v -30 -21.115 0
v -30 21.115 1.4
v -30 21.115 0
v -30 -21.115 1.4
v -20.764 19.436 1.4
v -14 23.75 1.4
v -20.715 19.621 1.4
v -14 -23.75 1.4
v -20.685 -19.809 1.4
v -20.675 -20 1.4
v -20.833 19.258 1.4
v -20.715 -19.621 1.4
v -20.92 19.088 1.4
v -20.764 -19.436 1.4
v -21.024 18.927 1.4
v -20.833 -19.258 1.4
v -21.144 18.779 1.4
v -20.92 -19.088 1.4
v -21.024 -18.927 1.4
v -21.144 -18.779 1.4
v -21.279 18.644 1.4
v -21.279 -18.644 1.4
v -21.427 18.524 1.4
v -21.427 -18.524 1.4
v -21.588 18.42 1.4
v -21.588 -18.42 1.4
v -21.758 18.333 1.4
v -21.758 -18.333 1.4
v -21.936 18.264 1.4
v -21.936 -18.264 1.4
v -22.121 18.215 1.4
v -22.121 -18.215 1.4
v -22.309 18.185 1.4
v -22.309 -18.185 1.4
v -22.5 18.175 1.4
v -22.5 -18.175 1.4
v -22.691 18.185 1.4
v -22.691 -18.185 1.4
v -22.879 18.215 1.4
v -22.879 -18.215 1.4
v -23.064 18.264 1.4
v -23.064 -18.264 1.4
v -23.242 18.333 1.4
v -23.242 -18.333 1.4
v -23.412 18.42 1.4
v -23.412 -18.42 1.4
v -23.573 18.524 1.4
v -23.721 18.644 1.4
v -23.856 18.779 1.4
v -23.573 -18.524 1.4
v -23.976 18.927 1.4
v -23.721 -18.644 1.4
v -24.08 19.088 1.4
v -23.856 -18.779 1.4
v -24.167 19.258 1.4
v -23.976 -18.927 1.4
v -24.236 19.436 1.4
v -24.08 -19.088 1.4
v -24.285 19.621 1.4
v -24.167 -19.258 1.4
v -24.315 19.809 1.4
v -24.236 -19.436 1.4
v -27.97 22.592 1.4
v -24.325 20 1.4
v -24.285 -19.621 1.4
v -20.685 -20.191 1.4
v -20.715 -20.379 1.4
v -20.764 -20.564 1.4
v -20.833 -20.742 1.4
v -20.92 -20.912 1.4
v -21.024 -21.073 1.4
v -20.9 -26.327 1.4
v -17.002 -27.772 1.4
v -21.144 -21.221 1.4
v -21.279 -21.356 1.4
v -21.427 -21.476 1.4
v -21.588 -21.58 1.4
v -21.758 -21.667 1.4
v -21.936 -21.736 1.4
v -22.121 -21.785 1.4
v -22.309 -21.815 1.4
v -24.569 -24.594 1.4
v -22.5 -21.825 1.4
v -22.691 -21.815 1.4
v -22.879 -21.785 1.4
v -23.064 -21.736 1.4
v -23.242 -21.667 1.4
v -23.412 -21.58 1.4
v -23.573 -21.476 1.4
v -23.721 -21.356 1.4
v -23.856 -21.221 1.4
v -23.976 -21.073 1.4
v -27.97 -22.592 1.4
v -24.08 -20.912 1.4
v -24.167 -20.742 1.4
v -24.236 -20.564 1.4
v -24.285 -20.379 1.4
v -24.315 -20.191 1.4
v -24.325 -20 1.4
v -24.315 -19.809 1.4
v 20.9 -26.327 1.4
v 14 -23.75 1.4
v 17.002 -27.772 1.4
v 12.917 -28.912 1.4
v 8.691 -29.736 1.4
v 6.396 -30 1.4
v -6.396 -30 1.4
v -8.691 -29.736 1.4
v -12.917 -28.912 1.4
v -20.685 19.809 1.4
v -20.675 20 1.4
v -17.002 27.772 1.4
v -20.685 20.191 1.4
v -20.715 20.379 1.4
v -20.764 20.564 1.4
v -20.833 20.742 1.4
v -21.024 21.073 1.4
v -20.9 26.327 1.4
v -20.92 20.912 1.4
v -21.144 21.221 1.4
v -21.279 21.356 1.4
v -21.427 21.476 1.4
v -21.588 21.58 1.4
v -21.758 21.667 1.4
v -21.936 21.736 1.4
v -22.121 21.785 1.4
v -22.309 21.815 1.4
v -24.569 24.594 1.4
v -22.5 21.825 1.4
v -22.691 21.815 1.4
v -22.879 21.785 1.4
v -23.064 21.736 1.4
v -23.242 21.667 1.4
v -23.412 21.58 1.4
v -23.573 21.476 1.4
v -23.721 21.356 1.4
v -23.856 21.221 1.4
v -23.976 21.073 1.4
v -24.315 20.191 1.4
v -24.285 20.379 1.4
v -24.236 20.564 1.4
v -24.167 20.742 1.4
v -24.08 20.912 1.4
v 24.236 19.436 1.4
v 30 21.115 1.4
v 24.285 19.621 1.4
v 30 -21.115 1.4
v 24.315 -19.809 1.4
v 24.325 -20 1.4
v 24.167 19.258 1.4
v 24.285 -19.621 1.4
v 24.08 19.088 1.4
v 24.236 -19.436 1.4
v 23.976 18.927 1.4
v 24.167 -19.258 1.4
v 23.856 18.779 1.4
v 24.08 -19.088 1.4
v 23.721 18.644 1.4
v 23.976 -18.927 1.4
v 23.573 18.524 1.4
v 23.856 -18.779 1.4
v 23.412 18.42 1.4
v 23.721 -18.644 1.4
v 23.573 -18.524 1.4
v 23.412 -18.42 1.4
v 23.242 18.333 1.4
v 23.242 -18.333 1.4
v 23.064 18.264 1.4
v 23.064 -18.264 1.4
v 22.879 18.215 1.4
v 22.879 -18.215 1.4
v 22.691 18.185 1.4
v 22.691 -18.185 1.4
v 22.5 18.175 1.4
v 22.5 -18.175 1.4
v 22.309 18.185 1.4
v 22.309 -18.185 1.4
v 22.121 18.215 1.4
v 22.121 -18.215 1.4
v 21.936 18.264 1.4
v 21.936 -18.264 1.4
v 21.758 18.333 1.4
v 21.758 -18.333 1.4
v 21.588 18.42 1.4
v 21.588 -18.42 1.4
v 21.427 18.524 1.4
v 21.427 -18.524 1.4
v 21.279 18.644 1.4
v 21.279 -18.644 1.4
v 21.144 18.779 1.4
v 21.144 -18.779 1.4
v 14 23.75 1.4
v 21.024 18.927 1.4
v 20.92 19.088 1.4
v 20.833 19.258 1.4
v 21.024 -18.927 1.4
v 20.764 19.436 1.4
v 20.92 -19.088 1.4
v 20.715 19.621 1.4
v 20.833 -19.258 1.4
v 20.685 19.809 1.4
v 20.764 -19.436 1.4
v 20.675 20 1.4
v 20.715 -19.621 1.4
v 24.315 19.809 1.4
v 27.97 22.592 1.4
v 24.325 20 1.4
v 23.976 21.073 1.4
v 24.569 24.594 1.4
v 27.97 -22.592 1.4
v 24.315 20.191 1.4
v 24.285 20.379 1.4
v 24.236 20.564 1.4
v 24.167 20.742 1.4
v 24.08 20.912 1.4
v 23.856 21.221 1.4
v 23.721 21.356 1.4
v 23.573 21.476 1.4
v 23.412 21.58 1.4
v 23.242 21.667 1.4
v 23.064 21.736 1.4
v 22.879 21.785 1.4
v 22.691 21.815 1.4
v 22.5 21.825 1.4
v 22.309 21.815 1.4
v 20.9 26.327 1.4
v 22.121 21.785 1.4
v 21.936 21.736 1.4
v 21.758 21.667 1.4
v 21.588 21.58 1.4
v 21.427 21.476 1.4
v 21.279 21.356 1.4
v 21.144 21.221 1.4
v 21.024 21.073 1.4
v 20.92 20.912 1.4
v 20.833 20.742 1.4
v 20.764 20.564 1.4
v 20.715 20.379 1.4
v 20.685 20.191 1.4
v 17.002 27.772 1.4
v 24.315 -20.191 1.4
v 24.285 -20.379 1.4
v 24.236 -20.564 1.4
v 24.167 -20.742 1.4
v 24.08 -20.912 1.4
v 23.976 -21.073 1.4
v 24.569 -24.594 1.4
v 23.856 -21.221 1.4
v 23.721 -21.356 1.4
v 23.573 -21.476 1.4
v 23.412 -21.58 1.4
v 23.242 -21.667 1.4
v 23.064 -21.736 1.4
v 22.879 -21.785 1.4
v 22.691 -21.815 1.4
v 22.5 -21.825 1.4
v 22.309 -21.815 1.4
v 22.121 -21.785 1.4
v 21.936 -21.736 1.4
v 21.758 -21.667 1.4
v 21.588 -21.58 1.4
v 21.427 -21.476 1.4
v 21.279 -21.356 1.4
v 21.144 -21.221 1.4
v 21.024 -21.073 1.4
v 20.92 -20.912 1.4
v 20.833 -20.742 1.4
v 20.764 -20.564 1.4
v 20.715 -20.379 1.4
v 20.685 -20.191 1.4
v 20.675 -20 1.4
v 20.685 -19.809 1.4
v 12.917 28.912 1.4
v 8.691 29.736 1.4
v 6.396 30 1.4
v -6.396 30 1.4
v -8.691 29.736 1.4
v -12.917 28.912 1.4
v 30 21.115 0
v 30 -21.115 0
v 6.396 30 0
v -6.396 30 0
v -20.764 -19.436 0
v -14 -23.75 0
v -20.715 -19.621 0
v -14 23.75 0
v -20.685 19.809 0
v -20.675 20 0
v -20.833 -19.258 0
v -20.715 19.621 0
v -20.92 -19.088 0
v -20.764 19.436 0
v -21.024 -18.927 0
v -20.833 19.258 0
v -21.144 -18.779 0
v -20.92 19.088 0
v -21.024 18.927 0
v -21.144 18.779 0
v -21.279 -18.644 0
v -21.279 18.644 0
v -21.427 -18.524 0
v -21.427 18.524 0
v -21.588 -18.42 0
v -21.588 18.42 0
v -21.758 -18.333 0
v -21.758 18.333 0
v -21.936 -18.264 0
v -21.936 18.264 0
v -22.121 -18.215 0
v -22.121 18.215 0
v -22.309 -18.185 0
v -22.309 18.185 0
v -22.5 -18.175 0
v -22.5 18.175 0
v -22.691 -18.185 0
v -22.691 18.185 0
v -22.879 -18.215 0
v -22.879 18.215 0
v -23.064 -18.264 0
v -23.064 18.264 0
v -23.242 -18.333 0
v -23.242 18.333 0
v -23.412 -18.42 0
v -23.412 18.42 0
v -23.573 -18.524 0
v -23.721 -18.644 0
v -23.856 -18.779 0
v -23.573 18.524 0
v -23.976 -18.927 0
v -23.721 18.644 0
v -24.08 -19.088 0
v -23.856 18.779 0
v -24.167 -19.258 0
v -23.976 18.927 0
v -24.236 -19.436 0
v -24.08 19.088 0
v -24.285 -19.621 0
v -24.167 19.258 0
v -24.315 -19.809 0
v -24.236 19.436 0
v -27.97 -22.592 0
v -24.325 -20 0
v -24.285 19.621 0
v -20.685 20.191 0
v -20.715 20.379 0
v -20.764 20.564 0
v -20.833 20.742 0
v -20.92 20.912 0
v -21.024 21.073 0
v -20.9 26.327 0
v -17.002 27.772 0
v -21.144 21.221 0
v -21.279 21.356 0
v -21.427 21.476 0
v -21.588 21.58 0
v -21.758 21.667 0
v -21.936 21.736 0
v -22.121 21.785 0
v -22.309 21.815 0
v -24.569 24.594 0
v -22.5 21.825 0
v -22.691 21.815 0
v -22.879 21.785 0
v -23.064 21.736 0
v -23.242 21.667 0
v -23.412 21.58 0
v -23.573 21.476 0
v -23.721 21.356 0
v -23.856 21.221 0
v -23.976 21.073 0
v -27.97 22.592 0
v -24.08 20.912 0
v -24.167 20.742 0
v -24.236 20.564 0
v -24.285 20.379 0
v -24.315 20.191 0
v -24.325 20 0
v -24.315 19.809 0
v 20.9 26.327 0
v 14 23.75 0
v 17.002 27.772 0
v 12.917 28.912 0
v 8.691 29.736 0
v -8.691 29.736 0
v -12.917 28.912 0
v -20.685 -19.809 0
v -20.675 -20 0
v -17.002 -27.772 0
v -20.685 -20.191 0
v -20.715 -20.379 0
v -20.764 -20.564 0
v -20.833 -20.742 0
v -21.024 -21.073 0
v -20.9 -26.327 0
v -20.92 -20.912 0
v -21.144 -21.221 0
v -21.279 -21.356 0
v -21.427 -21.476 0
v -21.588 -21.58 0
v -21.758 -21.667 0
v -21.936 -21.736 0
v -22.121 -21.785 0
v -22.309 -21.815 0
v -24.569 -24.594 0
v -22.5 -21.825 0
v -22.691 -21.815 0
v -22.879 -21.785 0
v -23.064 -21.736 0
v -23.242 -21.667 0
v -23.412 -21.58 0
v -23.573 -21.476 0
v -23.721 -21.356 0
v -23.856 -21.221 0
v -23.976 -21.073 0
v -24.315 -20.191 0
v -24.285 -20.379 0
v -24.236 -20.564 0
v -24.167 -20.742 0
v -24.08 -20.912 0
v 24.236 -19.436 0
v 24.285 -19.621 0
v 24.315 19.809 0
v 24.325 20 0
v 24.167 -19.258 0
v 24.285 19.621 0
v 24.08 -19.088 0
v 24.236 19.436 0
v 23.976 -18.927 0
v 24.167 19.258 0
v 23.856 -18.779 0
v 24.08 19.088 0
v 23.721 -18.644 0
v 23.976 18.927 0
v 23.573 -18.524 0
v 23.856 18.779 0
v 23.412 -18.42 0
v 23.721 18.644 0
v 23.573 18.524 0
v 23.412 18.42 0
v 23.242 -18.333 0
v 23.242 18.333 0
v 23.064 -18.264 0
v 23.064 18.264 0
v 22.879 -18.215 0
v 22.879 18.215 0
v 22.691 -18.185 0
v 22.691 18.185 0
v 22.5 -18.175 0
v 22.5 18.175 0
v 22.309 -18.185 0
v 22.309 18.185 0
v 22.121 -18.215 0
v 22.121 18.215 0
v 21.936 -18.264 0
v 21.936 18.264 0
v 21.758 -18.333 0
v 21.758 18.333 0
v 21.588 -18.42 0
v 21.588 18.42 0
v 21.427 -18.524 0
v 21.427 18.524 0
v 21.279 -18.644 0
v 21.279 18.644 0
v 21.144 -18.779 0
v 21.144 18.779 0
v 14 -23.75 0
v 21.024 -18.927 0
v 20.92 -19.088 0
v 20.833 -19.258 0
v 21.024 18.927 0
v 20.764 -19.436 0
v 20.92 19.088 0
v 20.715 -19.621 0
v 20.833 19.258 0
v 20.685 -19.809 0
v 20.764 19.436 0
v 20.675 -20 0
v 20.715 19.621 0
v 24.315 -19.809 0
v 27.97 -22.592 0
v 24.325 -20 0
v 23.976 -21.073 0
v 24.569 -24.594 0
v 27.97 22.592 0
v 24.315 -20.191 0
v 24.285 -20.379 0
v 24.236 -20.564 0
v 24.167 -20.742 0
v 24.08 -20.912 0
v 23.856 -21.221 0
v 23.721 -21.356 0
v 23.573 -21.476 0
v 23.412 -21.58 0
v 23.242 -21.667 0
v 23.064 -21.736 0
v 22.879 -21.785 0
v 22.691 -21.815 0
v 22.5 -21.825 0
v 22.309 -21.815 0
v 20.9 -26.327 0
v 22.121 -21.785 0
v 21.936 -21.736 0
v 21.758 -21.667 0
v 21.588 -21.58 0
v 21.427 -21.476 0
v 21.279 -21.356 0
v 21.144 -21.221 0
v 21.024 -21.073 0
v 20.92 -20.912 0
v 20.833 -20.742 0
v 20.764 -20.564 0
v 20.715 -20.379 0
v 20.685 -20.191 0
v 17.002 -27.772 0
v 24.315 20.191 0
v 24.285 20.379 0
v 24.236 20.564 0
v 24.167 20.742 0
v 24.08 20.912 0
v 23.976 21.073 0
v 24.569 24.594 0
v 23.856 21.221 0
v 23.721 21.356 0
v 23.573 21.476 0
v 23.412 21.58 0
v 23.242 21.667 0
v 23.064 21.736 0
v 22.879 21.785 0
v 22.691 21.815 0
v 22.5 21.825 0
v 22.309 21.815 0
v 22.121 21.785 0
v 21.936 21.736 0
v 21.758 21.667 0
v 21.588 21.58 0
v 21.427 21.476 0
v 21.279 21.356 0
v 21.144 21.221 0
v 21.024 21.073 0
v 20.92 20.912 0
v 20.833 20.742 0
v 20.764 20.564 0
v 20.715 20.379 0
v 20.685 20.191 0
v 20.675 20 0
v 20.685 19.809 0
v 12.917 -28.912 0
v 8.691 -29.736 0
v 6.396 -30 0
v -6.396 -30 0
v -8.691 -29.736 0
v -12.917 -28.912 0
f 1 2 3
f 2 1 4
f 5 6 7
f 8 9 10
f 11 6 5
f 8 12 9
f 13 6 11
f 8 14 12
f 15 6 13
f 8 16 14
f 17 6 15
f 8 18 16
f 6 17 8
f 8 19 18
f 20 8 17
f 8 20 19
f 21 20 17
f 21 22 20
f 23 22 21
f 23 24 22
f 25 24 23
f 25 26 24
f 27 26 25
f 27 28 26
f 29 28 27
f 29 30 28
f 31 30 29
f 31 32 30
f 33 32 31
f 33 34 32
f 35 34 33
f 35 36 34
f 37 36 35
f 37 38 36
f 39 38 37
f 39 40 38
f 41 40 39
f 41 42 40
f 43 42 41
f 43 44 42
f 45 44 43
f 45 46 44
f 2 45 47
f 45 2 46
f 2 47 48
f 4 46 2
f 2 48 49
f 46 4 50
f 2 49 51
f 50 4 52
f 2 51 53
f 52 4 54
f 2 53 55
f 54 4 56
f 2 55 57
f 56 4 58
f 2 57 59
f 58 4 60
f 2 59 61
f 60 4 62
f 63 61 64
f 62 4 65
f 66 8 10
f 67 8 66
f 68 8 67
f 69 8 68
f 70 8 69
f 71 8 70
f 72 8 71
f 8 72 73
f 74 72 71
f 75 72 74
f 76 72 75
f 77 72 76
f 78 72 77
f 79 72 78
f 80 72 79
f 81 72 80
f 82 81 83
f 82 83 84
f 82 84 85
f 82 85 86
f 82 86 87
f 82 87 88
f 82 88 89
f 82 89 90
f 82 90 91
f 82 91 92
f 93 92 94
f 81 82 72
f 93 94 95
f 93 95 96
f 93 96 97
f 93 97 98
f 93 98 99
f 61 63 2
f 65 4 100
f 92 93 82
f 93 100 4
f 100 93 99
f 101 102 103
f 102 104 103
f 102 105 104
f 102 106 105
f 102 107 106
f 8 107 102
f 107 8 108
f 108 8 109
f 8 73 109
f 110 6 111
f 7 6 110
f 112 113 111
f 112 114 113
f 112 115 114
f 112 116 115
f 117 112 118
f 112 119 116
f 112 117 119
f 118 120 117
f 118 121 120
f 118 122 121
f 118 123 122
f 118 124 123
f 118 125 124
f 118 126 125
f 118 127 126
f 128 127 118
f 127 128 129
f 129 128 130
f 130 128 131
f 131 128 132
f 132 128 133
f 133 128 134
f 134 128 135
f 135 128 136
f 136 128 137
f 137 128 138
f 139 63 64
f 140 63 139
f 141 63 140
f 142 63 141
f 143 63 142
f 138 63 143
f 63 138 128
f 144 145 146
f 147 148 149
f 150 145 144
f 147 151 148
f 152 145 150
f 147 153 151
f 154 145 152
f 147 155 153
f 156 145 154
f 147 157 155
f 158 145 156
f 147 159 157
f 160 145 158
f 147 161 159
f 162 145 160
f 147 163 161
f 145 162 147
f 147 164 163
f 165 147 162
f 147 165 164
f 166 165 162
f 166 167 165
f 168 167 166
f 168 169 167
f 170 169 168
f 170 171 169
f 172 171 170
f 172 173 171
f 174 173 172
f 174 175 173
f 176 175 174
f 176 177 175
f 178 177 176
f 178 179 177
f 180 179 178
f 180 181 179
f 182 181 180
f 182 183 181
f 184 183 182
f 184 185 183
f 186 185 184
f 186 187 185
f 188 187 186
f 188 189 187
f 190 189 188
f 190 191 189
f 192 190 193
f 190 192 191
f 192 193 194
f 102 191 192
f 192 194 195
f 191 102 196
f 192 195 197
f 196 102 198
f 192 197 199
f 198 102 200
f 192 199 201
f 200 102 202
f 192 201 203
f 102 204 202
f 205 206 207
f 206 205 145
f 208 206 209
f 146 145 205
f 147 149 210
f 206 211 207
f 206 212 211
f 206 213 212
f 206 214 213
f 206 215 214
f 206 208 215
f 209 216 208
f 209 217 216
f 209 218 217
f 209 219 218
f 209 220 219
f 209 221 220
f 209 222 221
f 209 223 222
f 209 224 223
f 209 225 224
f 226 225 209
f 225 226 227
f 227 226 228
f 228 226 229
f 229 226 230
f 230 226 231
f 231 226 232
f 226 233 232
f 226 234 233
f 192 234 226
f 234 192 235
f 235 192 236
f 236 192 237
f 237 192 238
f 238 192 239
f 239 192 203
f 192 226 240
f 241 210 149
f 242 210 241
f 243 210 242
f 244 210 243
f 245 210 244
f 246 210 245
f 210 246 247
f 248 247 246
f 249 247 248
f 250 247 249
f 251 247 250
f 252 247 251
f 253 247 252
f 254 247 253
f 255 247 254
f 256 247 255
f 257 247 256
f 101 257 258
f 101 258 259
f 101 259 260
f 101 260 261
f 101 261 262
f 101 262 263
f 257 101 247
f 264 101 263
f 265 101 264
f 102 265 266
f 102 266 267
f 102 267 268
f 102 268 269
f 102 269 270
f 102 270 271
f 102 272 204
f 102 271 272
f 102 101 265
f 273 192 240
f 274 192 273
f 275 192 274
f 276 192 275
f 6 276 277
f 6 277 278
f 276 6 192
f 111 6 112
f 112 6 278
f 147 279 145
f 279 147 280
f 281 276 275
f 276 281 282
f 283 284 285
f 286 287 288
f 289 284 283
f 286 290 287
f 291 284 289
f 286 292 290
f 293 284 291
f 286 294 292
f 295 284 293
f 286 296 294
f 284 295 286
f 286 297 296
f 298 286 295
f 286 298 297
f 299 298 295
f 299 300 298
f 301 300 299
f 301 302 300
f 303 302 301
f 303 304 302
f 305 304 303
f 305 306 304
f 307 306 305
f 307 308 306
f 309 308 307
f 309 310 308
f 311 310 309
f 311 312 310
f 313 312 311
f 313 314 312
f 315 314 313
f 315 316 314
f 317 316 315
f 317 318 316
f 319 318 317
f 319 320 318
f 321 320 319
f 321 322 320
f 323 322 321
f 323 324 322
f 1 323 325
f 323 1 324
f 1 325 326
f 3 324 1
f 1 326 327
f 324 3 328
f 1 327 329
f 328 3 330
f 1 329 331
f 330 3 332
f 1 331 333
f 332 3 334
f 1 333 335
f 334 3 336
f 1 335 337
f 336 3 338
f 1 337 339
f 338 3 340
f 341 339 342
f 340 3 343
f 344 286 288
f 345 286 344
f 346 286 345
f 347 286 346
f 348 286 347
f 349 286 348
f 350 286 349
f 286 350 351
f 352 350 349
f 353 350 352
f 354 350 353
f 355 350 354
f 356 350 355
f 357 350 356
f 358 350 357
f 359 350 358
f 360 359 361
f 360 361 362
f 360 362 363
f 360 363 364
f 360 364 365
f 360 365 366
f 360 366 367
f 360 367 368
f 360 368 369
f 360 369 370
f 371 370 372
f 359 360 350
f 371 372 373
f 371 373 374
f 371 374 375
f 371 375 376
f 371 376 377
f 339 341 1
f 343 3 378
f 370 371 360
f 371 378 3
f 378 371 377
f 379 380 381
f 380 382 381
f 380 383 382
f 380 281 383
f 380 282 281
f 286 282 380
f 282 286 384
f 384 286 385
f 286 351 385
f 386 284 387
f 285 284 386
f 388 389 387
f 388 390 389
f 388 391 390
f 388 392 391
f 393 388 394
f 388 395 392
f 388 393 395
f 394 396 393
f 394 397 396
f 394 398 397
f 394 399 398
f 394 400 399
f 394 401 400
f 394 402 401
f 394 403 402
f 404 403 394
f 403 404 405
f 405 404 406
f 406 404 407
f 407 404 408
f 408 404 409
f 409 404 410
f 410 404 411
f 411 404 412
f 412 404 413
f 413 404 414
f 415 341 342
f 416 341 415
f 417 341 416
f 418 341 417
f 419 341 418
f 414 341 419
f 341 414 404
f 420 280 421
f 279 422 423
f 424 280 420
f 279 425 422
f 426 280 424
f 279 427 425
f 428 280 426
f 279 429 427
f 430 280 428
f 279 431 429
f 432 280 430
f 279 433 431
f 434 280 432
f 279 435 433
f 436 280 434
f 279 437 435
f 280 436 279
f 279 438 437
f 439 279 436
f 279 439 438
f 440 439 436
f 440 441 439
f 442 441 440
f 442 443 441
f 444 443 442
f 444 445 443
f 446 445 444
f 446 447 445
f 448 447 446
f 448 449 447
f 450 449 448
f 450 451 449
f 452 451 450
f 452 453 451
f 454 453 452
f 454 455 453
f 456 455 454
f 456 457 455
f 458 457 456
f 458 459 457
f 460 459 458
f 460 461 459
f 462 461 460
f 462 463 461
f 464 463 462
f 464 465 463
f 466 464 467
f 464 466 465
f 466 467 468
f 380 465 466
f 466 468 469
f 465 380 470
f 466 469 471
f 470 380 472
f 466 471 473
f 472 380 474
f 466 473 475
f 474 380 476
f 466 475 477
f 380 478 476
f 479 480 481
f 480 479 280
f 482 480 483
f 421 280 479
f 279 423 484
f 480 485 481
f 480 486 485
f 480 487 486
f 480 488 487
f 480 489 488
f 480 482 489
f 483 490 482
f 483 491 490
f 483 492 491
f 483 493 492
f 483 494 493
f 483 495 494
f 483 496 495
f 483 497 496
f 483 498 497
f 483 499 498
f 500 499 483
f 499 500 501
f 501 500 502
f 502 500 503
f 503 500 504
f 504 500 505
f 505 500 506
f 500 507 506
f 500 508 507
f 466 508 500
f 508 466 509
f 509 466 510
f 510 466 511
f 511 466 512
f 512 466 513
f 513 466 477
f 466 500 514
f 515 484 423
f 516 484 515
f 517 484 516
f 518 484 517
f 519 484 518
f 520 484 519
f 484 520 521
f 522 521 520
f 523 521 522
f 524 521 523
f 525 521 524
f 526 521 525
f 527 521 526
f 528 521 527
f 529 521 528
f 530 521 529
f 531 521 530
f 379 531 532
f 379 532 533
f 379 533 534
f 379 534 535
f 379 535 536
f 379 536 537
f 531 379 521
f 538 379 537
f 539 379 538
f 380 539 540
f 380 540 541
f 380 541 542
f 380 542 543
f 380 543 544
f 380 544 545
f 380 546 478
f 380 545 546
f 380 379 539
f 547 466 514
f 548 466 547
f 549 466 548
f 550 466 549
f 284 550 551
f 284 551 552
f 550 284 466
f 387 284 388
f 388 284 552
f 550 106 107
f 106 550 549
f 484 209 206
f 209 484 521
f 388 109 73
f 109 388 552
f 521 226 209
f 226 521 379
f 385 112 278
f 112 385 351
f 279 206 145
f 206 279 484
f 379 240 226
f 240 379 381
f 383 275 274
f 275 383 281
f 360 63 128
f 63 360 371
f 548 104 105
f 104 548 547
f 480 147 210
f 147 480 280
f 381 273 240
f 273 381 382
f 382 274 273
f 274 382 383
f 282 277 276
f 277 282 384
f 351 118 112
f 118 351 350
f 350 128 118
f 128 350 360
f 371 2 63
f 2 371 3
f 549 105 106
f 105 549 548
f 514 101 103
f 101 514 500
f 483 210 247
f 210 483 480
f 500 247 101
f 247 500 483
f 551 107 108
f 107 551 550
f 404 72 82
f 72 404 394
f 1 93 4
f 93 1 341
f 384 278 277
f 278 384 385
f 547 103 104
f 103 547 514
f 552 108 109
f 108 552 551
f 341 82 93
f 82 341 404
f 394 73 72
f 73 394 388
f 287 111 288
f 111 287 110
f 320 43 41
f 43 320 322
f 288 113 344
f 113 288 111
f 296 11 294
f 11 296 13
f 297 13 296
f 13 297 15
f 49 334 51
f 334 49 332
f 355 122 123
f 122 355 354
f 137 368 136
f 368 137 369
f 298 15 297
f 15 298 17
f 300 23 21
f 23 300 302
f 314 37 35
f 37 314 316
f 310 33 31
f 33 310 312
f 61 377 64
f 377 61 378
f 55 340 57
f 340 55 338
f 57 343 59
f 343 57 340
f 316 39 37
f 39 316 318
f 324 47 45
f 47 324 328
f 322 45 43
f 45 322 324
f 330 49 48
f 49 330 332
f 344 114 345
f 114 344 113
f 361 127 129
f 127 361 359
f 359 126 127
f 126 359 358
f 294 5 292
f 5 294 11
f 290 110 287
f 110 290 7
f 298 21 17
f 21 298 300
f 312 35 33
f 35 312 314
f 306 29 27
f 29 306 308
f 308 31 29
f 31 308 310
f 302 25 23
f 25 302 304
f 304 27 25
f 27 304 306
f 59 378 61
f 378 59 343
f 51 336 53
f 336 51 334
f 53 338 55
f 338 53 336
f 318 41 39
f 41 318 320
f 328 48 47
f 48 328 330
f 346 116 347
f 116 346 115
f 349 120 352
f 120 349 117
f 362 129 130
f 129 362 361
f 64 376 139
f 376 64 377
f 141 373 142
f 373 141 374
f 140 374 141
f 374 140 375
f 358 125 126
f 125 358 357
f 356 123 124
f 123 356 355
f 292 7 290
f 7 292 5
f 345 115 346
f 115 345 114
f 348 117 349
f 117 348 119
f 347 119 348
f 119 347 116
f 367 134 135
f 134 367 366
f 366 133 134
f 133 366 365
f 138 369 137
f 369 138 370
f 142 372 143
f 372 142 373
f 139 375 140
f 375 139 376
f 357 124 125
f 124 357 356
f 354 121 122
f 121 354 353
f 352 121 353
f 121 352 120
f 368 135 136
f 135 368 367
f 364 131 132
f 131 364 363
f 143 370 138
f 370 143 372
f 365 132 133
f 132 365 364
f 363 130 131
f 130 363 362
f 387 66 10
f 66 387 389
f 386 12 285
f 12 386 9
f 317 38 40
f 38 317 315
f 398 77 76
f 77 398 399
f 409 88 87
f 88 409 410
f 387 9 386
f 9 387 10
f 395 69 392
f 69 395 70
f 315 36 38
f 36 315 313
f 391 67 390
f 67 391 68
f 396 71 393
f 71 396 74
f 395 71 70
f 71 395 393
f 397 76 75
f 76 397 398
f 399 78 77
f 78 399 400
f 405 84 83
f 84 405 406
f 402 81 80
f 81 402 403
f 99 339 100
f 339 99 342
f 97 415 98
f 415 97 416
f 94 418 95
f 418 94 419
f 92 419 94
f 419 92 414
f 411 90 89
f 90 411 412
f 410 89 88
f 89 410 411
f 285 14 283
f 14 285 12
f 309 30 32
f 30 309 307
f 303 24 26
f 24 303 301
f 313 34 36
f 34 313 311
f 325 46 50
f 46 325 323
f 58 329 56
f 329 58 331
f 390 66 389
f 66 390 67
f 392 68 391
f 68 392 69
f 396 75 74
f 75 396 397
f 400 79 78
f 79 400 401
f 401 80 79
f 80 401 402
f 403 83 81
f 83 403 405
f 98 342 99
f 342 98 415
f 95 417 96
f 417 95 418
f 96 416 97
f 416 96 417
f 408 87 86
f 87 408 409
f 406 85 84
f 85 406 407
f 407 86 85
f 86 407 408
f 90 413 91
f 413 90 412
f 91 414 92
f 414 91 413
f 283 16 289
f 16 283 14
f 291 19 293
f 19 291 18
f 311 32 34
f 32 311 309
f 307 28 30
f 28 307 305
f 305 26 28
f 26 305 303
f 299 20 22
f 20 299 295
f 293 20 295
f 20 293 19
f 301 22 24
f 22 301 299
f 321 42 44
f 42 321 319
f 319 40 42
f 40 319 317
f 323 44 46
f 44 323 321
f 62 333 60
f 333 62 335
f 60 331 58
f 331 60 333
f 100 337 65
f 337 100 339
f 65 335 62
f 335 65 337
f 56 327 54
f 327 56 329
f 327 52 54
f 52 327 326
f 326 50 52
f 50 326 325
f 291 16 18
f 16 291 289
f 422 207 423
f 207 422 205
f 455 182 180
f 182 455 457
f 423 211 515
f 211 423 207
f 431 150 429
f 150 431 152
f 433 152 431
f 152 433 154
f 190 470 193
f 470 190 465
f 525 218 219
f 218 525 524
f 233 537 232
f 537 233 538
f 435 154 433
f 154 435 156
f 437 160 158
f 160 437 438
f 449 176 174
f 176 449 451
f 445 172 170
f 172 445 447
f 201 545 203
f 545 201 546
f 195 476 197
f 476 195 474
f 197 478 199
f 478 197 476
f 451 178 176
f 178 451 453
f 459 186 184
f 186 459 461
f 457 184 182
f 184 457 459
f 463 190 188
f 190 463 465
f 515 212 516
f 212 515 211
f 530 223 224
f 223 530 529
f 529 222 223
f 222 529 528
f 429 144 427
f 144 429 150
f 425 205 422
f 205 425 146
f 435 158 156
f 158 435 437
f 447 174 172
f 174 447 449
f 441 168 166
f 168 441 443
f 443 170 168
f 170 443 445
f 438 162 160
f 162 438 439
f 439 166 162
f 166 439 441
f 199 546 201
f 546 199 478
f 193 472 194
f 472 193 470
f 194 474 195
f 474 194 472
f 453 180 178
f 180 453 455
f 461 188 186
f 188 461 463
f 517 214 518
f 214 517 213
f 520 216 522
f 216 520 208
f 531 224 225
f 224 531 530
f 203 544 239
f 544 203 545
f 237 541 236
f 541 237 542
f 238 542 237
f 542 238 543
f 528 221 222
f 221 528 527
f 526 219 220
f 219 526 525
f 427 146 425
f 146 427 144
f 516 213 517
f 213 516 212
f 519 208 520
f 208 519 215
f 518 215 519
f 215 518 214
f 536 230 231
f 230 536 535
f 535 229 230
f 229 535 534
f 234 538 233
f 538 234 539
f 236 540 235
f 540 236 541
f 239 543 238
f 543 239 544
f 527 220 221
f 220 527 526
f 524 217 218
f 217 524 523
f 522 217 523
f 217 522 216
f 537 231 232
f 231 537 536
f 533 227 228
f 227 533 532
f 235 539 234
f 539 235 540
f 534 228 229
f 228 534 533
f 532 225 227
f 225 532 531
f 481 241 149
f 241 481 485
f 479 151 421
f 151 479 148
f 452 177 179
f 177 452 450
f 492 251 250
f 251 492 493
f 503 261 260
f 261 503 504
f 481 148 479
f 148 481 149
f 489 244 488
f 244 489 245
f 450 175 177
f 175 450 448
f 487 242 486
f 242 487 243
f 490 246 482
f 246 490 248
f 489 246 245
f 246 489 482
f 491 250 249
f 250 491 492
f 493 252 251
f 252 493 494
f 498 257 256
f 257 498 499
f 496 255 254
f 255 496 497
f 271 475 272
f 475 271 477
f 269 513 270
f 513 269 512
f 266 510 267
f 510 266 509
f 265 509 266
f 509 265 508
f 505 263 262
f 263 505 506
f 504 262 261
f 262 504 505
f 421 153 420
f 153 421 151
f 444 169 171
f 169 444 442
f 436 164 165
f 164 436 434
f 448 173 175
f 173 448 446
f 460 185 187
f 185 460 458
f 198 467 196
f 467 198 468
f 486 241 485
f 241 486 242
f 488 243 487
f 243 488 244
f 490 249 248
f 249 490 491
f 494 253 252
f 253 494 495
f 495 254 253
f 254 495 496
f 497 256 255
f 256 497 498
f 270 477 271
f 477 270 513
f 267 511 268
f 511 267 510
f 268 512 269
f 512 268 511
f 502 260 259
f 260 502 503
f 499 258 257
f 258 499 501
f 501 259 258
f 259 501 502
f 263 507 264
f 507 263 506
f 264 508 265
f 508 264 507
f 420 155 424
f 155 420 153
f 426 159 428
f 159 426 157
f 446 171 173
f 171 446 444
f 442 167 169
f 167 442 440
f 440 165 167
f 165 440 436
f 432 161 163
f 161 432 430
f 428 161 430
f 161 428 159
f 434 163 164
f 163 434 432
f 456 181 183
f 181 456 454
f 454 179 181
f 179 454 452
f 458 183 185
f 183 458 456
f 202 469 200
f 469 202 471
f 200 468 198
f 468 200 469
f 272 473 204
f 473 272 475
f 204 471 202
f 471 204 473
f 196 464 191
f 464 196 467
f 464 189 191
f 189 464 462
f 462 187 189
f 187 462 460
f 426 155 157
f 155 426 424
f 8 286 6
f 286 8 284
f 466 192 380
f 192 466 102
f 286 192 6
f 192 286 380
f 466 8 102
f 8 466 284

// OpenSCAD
// file: configuration.scad
// Increase this if your slicer or printer make holes too tight.
extra_radius = 0.1;

// OD = outside diameter, corner to corner.
m3_nut_od = 6.1;
m3_nut_radius = m3_nut_od/2 + 0.2 + extra_radius;
m3_nut_thickness = 2.4 + extra_radius;
m3_washer_radius = 3.5 + extra_radius;

// Major diameter of metric 3mm thread.
m3_major = 2.85;
m3_radius = m3_major/2 + extra_radius;
m3_wide_radius = m3_major/2 + extra_radius + 0.2;

// OD = outside diameter, corner to corner.
m4_nut_od = 7.1;
m4_nut_radius = m4_nut_od/2 + 0.2 + extra_radius;
m4_thickness = 3.82 + extra_radius;
m4_washer_radius = 4.5 + extra_radius;

// Major diameter of metric 3mm thread.
m4_major = 3.85;
m4_radius = m4_major/2 + extra_radius;
m4_wide_radius = m4_major/2 + extra_radius + 0.2;

// NEMA17 stepper motors.
motor_shaft_diameter = 5;
motor_shaft_radius = motor_shaft_diameter/2 + extra_radius;

// Frame brackets. M3x8mm screws work best with 3.6 mm brackets.
thickness = 3.6;

// OpenBeam or Misumi. Currently only 15x15 mm, but there is a plan
// to make models more parametric and allow 20x20 mm in the future.
extrusion = 15;

// Placement for the NEMA17 stepper motors.
motor_offset = 44;
motor_length = 47;
// main file
include <configuration.scad>;

$fn = 60;
roundness = 6;

extra = 1;

socket_thickness = 21;
socket_width = 27;
socket_length = 46.5;

module extrusion_cutout(h, extra) {
  difference() {
    cube([extrusion+extra, extrusion+extra, h], center=true);
    for (a = [0:90:359]) rotate([0, 0, a]) {
      translate([extrusion/2, 0, 0])
        cube([6, 2.5, h+1], center=true);
    }
  }
}

module power_socket() {
  thickness = 1.4;

  difference() {
    union() {
      intersection() {
        translate([0, 0, thickness/2])
          cube([60, 60, thickness], center=true);
        scale([1.1, 0.8, 1]) cylinder(r=38, h=10, center=true);
      }
    }
    union() {
      translate([0, 0, -socket_thickness/2 + 4])
        cube([socket_width + extra, socket_length + extra, socket_thickness], center=true);

      rotate([90, 0, 0]) {
        for(a = [-1, 1]) {
          translate([a*extrusion*1.5, -extrusion/2, 0]) {
            % extrusion_cutout(100+10, 2*extra_radius);

          for(x = [-1, 1]) {
            translate([0, 8, x*20]) rotate([90, 0, 0])
              cylinder(r=m3_radius+.3, h=5, center=true);
            }
          }
        }
      }

    }
  }
};



power_socket();
